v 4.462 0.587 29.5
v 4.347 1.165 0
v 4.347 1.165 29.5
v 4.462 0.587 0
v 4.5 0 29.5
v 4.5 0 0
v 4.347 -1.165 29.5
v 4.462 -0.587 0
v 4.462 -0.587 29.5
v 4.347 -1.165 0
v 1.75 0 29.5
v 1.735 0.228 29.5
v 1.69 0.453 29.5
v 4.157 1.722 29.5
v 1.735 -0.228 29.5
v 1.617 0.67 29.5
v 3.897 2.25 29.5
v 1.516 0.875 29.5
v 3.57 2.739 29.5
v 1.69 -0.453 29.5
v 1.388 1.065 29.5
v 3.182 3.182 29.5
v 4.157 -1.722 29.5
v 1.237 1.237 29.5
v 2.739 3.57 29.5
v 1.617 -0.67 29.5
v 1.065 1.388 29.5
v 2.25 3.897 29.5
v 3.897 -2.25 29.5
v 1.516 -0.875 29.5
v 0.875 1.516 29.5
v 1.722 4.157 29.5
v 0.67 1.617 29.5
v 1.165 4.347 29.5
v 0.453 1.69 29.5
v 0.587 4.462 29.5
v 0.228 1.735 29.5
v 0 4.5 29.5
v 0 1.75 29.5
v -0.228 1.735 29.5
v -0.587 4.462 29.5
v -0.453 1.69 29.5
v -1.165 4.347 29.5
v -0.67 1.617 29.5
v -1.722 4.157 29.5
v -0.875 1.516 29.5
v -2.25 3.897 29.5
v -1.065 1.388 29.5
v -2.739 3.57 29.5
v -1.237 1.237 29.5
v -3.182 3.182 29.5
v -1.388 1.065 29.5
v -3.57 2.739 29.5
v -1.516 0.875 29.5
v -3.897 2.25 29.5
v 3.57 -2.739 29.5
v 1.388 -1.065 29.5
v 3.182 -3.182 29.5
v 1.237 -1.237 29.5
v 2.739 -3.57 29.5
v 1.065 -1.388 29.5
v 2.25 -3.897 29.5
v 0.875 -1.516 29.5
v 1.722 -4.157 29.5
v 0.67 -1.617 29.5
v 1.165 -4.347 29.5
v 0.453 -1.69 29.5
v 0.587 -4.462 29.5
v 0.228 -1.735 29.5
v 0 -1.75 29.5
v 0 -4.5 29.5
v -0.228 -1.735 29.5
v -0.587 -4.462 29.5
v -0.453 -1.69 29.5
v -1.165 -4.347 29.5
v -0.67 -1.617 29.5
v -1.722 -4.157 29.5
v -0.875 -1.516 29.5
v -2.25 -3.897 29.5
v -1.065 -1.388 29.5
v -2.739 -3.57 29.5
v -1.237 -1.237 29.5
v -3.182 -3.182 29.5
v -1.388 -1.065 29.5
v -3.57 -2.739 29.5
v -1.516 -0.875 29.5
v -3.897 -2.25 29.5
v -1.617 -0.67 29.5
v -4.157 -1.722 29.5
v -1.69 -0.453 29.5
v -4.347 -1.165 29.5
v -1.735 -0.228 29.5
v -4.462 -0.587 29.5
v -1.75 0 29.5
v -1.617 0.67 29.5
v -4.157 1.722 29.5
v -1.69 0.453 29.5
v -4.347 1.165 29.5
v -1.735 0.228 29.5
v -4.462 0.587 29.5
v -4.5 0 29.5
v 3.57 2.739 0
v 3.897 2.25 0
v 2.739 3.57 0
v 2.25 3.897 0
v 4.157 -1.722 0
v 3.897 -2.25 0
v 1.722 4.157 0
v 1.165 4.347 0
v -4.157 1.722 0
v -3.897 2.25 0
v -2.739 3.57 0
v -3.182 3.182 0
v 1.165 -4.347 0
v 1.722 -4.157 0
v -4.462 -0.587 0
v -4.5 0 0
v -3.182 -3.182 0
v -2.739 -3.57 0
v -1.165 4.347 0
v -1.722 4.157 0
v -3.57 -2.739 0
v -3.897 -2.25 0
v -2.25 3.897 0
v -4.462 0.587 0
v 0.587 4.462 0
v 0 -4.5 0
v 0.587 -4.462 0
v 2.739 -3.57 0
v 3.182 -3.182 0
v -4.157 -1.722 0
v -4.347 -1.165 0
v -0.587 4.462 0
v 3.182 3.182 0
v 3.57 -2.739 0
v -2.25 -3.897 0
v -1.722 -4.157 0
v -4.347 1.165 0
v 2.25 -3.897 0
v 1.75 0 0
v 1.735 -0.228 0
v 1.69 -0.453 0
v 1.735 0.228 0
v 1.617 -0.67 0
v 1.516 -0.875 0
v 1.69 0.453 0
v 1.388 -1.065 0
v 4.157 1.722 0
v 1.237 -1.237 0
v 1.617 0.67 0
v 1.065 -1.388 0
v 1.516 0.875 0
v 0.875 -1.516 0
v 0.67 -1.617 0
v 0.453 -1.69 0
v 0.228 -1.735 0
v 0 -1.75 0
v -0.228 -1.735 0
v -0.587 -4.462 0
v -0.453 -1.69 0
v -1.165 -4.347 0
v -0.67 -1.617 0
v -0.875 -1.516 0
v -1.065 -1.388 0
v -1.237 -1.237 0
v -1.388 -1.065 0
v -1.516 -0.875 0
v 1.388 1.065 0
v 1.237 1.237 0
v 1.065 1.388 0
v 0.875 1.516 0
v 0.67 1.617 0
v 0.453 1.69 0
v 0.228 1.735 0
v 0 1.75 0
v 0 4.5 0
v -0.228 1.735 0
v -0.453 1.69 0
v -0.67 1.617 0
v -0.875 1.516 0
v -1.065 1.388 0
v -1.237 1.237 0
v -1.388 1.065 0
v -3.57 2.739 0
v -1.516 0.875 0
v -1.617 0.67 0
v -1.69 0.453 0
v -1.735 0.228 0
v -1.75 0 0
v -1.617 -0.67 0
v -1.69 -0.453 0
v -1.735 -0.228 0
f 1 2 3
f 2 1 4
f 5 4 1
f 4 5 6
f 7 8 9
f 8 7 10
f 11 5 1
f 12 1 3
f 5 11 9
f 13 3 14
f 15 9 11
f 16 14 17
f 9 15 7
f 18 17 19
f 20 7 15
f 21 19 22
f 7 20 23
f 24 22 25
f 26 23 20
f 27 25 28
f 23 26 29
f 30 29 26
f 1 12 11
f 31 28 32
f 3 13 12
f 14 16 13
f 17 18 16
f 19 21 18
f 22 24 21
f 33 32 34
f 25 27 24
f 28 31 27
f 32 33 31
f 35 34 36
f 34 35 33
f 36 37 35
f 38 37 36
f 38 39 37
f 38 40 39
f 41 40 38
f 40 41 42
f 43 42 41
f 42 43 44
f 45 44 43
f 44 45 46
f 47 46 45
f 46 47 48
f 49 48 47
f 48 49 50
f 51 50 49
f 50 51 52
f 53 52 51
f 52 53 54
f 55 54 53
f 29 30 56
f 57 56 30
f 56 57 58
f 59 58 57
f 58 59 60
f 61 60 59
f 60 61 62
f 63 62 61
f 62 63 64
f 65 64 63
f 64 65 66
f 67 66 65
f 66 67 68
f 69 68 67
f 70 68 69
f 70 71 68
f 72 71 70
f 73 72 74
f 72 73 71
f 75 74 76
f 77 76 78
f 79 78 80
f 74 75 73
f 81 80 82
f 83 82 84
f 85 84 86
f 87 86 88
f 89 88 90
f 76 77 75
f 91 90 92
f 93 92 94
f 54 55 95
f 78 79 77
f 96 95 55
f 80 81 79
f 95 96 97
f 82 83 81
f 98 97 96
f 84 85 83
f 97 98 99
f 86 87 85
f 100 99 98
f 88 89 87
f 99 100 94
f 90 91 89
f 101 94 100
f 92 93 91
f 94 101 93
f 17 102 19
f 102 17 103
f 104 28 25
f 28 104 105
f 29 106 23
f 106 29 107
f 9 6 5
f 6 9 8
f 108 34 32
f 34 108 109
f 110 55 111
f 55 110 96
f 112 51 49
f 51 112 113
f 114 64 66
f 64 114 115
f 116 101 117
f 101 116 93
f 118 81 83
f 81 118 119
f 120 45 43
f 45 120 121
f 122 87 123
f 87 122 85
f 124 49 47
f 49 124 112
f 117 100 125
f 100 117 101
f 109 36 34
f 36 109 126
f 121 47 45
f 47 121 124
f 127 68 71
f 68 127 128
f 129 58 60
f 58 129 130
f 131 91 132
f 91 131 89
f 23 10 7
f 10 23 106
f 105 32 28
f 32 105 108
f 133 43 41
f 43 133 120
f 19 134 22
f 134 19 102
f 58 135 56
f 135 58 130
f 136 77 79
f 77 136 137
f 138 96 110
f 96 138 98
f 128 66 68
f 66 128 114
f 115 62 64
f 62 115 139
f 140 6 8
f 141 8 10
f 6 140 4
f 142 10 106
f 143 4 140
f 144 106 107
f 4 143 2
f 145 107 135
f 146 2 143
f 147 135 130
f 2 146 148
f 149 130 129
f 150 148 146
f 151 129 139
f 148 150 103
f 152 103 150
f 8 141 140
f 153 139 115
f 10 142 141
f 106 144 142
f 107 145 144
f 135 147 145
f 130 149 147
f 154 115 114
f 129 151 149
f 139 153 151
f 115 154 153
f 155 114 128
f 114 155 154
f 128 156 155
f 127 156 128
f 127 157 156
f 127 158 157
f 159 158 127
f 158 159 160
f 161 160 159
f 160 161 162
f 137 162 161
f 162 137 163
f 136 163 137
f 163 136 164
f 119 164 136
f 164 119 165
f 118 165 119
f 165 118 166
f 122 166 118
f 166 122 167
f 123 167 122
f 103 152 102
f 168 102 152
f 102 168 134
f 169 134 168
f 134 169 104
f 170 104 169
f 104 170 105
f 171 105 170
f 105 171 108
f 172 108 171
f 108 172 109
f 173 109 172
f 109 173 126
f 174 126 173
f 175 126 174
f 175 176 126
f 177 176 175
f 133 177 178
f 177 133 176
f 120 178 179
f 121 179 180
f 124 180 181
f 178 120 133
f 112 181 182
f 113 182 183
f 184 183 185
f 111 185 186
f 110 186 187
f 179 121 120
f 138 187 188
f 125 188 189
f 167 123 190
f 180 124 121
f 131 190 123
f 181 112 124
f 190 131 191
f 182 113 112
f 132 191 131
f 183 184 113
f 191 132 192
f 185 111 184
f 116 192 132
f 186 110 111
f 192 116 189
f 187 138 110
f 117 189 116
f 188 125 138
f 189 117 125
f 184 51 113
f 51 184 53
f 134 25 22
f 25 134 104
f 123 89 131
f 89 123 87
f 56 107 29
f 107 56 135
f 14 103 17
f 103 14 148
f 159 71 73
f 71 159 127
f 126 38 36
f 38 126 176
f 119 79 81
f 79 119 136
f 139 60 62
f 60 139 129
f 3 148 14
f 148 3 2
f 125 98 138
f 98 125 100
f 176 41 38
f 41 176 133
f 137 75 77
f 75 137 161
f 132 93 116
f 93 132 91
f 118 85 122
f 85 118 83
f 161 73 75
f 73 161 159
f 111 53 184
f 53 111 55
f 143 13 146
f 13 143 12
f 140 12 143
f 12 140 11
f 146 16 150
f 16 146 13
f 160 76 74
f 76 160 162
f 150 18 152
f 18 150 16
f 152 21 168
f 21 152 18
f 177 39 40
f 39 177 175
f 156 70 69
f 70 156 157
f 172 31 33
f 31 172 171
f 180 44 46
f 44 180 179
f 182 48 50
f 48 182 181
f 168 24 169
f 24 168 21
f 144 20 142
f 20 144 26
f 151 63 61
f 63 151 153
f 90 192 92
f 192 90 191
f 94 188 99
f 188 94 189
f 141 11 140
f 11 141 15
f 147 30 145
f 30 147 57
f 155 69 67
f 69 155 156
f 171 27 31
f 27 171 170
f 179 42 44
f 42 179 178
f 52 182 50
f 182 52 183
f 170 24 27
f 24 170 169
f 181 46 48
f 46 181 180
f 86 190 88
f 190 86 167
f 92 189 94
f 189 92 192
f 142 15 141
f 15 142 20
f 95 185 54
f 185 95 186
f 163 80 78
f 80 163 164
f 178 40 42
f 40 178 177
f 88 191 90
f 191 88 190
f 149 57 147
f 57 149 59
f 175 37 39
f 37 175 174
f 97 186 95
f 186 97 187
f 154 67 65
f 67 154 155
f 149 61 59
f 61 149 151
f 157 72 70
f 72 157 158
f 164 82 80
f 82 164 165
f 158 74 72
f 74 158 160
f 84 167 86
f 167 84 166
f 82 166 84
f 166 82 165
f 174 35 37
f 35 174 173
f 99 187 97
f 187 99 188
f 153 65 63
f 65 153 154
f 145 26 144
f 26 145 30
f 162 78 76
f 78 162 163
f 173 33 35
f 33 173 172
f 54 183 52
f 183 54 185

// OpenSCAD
// Gen-CU — frame standoff tube between stator and an endbell, on each M3 frame rod (outside rotor OD).
// Print x4. Height = frame_standoff_h (rotor + steel + hub + collar + running clearance).
include <parameters.scad>;
$fn = 48;
difference() {
    cylinder(d=standoff_od, h=frame_standoff_h);
    translate([0, 0, -0.1]) cylinder(d=m3_clear, h=frame_standoff_h + 0.2);
}
